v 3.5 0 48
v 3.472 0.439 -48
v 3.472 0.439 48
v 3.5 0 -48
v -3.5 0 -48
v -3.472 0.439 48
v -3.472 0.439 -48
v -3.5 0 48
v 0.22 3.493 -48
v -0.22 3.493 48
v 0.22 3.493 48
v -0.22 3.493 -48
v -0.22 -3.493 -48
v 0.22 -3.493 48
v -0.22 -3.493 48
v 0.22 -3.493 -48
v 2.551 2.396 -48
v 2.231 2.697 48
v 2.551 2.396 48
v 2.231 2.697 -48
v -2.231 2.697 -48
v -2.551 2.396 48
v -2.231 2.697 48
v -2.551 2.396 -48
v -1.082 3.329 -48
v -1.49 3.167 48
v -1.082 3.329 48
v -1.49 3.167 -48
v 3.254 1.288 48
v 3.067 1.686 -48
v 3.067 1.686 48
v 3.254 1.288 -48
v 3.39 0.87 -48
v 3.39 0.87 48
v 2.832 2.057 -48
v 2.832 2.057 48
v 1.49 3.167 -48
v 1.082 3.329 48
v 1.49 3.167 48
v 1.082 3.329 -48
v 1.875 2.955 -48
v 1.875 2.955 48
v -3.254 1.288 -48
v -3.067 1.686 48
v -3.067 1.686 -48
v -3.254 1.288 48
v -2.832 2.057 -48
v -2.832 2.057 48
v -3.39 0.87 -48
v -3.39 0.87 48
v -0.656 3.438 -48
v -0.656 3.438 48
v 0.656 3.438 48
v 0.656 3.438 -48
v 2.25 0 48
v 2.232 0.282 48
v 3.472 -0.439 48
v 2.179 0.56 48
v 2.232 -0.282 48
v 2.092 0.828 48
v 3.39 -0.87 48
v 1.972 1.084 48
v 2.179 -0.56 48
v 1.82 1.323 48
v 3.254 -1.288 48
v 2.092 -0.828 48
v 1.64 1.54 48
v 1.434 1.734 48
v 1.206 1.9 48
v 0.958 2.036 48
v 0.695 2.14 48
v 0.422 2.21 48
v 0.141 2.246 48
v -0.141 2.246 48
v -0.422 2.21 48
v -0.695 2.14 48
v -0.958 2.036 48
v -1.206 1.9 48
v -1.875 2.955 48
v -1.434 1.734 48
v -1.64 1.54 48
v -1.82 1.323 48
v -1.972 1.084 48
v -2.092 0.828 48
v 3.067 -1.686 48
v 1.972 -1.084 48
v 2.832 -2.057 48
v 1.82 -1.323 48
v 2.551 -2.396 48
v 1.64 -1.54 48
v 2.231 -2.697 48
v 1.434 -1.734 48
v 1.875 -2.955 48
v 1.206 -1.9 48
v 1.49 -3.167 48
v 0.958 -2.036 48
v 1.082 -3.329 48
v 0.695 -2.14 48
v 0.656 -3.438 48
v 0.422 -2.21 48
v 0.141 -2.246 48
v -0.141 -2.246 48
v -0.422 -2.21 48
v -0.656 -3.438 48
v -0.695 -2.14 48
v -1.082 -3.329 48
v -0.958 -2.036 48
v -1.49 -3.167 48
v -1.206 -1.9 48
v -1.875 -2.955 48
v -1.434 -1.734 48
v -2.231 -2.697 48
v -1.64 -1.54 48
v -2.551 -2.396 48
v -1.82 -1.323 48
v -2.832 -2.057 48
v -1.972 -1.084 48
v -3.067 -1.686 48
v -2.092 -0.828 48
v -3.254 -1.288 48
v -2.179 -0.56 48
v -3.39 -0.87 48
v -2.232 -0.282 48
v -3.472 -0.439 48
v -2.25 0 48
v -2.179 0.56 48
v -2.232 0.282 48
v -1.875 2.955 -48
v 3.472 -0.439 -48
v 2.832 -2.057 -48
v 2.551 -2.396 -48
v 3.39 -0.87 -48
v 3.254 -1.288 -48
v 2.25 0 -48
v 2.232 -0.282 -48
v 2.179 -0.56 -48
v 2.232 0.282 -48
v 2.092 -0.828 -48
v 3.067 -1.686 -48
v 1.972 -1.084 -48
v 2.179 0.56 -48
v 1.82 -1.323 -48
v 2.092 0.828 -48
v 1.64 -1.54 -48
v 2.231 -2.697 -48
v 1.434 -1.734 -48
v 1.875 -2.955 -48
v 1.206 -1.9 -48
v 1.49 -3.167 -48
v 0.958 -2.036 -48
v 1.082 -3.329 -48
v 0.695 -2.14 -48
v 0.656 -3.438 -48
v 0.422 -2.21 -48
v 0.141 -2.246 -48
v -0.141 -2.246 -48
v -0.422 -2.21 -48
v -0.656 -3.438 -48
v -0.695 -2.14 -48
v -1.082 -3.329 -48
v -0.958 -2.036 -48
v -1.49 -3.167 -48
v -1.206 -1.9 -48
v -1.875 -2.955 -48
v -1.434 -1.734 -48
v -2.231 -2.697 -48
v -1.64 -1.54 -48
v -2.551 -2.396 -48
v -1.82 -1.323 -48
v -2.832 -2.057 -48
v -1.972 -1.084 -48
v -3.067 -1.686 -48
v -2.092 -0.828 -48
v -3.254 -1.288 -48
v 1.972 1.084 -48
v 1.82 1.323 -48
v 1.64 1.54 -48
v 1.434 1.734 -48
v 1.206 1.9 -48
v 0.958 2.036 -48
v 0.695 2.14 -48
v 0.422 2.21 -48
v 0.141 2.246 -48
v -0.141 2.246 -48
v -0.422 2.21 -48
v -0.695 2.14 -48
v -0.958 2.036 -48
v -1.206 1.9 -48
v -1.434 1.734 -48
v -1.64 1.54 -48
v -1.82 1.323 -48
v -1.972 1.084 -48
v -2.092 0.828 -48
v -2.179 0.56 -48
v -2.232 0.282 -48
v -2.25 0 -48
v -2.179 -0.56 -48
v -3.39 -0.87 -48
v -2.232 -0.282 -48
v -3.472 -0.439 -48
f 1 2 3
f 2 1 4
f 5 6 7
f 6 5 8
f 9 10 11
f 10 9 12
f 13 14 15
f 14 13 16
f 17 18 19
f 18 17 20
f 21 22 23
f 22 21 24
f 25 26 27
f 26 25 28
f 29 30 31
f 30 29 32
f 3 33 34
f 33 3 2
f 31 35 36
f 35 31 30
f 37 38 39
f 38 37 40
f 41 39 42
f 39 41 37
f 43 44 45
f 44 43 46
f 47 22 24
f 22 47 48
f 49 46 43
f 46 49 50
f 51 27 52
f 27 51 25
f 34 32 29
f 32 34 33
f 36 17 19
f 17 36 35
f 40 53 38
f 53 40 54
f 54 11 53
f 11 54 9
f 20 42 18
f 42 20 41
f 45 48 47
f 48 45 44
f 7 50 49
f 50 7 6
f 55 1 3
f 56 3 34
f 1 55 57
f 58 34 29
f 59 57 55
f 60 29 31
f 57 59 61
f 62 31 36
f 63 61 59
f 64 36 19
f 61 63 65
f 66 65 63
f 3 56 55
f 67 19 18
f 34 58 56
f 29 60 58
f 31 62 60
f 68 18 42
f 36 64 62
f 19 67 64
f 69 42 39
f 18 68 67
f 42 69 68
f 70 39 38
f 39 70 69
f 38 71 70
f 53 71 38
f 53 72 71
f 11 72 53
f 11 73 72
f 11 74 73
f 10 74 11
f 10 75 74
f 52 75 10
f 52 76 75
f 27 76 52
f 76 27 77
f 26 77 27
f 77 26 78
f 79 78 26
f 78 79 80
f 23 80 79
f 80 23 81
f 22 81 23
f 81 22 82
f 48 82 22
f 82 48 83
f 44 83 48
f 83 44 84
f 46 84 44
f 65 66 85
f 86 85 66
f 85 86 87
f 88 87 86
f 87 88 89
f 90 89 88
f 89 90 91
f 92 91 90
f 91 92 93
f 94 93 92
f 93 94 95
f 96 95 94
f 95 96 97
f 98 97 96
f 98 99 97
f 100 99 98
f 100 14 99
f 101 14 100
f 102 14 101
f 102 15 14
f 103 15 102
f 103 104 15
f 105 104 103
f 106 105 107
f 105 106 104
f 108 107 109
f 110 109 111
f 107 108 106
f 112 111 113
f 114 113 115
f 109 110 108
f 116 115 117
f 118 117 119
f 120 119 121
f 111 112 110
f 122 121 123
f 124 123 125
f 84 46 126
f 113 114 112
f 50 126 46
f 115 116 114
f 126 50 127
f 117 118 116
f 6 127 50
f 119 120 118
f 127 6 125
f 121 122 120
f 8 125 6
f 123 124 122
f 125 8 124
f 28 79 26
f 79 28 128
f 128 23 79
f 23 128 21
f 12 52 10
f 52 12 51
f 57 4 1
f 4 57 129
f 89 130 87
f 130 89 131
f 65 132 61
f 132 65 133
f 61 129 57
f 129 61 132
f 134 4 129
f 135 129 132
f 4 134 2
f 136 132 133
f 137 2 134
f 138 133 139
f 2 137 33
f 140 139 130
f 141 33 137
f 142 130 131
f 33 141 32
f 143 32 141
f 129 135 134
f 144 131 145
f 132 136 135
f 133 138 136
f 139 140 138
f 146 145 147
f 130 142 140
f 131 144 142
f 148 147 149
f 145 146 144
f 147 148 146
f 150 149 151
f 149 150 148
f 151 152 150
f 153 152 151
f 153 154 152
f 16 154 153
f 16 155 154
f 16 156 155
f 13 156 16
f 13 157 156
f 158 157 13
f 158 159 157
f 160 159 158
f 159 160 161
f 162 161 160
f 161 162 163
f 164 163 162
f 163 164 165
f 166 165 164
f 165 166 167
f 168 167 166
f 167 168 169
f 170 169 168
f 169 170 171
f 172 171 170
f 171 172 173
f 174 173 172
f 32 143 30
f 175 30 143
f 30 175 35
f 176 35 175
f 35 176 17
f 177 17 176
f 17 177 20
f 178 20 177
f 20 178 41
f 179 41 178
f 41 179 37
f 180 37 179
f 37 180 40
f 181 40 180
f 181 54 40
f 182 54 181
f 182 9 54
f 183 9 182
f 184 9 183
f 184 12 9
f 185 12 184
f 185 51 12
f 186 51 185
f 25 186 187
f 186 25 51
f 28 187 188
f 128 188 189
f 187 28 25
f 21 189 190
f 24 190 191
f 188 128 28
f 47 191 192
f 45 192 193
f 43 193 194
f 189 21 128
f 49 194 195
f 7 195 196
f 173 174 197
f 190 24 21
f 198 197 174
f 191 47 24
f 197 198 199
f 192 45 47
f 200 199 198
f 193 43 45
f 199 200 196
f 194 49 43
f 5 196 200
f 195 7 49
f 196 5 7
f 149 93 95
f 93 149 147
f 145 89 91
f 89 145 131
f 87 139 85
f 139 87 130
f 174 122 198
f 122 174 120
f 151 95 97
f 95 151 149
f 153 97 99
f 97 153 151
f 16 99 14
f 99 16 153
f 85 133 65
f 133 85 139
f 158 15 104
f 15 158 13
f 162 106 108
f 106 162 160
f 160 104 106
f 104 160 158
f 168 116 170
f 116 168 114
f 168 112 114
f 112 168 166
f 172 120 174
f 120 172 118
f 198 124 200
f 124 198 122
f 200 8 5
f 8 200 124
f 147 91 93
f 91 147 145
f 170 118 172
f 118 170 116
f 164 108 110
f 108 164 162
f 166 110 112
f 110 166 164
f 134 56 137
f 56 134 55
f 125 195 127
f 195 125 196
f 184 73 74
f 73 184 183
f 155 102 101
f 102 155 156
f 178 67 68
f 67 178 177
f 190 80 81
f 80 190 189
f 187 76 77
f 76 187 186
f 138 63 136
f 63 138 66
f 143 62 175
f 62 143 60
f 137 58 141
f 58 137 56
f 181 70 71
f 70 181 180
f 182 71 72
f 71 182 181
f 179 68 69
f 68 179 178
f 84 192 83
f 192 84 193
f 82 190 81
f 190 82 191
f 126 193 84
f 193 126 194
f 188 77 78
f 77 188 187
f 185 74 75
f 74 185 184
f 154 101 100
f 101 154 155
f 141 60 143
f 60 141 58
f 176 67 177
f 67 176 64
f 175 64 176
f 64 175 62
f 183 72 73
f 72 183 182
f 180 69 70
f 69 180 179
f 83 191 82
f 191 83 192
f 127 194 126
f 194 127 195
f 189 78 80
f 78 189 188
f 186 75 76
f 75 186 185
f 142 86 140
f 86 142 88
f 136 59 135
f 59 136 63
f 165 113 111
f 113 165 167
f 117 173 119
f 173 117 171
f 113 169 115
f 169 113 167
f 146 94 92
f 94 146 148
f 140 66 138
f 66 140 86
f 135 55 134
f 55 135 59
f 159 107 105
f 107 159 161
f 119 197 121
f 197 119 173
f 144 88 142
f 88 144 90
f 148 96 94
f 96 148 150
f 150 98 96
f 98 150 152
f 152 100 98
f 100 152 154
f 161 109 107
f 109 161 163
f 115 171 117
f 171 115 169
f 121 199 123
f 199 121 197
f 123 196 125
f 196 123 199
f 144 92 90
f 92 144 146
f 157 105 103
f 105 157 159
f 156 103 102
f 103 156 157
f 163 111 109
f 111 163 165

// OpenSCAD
$fn = 50;


difference() {
	union() {
		translate(v = [0, 0, -48.0000000000]) {
			cylinder(h = 96, r = 3.5000000000);
		}
	}
	union() {
		translate(v = [0, 0, -100.0000000000]) {
			cylinder(h = 200, r = 2.2500000000);
		}
	}
}
